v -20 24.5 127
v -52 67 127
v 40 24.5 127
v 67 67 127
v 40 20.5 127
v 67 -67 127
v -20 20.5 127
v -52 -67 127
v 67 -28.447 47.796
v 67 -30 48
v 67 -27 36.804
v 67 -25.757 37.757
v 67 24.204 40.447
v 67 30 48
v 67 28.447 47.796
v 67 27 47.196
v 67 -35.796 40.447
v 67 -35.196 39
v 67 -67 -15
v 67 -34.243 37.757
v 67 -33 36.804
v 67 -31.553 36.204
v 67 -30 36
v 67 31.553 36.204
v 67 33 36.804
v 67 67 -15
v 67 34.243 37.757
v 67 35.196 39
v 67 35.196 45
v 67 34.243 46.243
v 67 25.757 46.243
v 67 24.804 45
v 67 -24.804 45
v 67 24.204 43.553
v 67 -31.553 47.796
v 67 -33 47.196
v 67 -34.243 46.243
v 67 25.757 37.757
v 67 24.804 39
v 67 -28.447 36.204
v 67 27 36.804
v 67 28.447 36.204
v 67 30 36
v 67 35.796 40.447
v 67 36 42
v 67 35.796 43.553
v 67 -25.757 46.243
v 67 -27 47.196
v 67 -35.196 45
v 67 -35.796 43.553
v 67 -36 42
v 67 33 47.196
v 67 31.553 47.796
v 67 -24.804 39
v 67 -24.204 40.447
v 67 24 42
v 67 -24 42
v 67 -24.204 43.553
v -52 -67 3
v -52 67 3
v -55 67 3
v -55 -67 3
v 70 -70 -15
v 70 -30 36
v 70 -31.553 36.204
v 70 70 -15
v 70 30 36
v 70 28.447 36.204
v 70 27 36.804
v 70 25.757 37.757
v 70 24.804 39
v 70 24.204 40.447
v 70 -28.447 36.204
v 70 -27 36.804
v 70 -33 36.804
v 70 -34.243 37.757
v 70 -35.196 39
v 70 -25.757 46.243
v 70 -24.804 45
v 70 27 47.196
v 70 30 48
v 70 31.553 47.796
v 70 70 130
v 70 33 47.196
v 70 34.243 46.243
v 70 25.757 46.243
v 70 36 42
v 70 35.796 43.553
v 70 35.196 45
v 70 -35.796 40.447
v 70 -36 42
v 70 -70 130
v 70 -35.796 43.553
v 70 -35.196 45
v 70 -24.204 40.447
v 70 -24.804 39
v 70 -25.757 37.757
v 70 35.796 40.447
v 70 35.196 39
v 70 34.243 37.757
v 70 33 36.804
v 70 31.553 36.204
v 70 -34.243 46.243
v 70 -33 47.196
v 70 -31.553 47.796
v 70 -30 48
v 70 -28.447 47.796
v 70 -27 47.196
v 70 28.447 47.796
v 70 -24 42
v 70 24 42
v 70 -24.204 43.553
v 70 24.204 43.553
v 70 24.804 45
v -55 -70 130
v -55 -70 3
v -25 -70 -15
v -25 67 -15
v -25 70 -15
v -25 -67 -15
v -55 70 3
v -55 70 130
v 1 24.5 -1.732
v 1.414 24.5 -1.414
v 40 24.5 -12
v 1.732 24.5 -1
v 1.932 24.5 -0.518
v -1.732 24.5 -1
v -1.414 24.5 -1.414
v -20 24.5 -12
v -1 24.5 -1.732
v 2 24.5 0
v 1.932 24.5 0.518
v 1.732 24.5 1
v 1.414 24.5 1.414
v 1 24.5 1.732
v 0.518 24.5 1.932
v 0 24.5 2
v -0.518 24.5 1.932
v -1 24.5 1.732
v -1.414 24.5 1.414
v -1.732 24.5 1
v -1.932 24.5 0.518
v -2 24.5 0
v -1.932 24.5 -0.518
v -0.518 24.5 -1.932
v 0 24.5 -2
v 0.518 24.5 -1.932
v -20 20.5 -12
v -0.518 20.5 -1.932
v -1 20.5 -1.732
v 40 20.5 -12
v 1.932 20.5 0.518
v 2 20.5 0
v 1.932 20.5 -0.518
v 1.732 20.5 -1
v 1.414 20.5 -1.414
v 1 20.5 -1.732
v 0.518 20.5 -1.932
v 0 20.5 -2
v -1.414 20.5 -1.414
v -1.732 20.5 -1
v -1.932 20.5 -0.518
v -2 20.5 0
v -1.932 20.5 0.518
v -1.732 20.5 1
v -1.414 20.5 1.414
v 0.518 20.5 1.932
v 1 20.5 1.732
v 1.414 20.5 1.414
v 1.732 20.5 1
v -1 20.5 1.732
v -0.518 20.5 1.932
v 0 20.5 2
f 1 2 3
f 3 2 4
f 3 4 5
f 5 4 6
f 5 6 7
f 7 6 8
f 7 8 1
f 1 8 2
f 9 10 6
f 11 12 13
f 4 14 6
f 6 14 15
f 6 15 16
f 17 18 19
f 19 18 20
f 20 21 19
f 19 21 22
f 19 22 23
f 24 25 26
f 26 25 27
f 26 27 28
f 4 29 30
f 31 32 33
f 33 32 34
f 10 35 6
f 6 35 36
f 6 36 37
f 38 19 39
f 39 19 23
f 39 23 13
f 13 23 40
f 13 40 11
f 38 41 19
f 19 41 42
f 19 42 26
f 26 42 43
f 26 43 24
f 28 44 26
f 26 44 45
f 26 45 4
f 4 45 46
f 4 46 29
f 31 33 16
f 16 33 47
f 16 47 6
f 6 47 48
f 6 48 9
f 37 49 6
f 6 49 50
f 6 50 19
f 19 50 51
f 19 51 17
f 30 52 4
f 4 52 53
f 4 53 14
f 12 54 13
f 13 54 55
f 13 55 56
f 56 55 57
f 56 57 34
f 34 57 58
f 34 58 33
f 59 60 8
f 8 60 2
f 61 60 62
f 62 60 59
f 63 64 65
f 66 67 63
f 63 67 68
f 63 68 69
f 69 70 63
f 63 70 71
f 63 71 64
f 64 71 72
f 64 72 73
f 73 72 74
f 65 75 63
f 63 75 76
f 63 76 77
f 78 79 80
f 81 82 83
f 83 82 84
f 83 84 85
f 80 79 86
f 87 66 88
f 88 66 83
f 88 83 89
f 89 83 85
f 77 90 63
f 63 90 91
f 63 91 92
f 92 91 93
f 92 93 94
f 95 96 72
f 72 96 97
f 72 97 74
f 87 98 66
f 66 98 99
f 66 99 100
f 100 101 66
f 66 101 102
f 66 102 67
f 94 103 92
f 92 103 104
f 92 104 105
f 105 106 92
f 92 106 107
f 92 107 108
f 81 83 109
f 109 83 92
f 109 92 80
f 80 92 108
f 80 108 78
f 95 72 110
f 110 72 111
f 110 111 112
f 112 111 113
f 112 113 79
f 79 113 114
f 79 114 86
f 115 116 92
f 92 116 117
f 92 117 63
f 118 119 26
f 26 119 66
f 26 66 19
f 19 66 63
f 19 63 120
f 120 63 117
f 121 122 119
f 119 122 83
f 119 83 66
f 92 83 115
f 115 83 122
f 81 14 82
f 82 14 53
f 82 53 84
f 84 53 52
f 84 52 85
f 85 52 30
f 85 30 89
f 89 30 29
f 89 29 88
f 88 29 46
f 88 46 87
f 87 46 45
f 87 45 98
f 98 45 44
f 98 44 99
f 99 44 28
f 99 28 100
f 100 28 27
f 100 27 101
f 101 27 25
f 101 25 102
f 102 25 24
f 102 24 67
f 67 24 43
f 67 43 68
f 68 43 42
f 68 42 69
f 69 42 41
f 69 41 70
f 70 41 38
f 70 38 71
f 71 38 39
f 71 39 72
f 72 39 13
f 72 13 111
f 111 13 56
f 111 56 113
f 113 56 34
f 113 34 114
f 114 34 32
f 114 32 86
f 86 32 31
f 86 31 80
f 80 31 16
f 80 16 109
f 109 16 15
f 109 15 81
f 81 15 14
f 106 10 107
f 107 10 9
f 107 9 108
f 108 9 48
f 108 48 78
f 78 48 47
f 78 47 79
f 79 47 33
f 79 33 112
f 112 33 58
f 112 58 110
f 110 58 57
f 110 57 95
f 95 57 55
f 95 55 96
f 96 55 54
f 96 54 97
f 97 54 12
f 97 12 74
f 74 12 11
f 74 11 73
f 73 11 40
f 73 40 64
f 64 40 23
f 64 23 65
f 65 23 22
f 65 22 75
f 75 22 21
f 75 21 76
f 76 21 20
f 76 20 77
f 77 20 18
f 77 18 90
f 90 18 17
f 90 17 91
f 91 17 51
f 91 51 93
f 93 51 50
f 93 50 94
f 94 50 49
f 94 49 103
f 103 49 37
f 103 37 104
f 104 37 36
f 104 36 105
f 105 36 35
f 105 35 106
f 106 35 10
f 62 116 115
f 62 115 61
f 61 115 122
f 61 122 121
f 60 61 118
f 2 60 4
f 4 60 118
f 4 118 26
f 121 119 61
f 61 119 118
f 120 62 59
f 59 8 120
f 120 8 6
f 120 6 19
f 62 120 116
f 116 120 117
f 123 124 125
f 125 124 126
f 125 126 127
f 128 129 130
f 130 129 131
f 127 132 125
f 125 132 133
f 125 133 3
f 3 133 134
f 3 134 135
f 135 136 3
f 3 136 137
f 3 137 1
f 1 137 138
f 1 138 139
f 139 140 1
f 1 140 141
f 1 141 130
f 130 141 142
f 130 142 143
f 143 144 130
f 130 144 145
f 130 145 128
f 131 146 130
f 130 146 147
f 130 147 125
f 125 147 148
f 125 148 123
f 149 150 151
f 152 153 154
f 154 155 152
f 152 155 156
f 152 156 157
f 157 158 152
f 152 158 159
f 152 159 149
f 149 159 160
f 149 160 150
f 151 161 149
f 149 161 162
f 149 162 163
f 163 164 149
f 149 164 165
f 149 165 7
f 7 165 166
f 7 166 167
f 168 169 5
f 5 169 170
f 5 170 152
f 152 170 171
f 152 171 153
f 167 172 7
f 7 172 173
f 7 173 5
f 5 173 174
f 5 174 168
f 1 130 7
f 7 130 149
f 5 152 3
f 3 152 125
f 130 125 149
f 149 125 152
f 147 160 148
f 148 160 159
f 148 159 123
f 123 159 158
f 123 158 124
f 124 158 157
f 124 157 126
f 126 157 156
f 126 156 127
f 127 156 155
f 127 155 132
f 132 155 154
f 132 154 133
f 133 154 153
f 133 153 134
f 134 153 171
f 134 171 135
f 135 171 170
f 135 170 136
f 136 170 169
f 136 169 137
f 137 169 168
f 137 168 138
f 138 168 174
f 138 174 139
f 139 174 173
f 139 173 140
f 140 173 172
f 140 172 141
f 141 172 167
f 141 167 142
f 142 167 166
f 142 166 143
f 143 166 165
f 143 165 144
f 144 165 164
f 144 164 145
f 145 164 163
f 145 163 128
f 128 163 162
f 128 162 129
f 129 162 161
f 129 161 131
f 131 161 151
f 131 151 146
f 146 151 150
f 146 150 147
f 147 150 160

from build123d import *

# Parameters (mm, degrees)
SK_FRONT_W       = 145
SK_FRONT_H       = 140
SK_FRONT_R       = 6
FRONT_DEPTH      = 3
SK_BACK_W        = 127
SK_BACK_H        = 140
BACK_DEPTH       = 3
SK_TOP_W         = 125
SK_TOP_H         = 140
TOP_DEPTH        = 3
SIDE_L_DEPTH     = 3
SIDE_R_DEPTH     = 3
SK_HORN_PLATE_W  = 60
SK_HORN_PLATE_H  = 142
SK_HORN_PLATE_R  = 2
HORN_PLATE_DEPTH = 4


with BuildPart() as part:
    # SK_Front → Front (new body)
    with BuildSketch(Plane(origin=(67, 0, 0), x_dir=(0, 0, -1), z_dir=(1, 0, 0))):
        with Locations((-57.5, 0)):
            Rectangle(SK_FRONT_W, SK_FRONT_H)
        with Locations((-42, 30)):
            Circle(SK_FRONT_R, mode=Mode.SUBTRACT)
        with Locations((-42, -30)):
            Circle(SK_FRONT_R, mode=Mode.SUBTRACT)
    extrude(amount=FRONT_DEPTH)



with BuildPart() as body_2:
    # SK_Back → Back (new body)
    with BuildSketch(Plane(origin=(-55, 0, 0), x_dir=(0, 0, -1), z_dir=(1, 0, 0))):
        with Locations((-66.5, 0)):
            Rectangle(SK_BACK_W, SK_BACK_H)
    extrude(amount=BACK_DEPTH)


with BuildPart() as part_1:
    add(part.part)

    add(body_2.part)  # Top merges body 2
    # SK_Top → Top (add)
    with BuildSketch(Plane.XY.offset(127)):
        with Locations((7.5, 0)):
            Rectangle(SK_TOP_W, SK_TOP_H)
    extrude(amount=TOP_DEPTH)

    # SK_Side_L → Side_L (add)
    with BuildSketch(Plane(origin=(0, 67, 0), x_dir=(1, 0, 0), z_dir=(0, 1, 0))):
        Polygon((-25, 15), (70, 15), (70, -130), (-55, -130), (-55, -3), align=None)
    extrude(amount=SIDE_L_DEPTH)

    # SK_Side_R → Side_R (add)
    with BuildSketch(Plane(origin=(0, -70, 0), x_dir=(1, 0, 0), z_dir=(0, 1, 0))):
        Polygon((-25, 15), (70, 15), (70, -130), (-55, -130), (-55, -3), align=None)
    extrude(amount=SIDE_R_DEPTH)

    # SK_Horn_Plate → Horn_Plate (add)
    with BuildSketch(Plane(origin=(0, 20.5, 0), x_dir=(1, 0, 0), z_dir=(0, 1, 0))):
        with Locations((10, -59)):
            Rectangle(SK_HORN_PLATE_W, SK_HORN_PLATE_H)
        with Locations(Location((0, 0, 0), (0, 0, 270))):
            Circle(SK_HORN_PLATE_R, mode=Mode.SUBTRACT)
    extrude(amount=HORN_PLATE_DEPTH)


solid = part_1.part
